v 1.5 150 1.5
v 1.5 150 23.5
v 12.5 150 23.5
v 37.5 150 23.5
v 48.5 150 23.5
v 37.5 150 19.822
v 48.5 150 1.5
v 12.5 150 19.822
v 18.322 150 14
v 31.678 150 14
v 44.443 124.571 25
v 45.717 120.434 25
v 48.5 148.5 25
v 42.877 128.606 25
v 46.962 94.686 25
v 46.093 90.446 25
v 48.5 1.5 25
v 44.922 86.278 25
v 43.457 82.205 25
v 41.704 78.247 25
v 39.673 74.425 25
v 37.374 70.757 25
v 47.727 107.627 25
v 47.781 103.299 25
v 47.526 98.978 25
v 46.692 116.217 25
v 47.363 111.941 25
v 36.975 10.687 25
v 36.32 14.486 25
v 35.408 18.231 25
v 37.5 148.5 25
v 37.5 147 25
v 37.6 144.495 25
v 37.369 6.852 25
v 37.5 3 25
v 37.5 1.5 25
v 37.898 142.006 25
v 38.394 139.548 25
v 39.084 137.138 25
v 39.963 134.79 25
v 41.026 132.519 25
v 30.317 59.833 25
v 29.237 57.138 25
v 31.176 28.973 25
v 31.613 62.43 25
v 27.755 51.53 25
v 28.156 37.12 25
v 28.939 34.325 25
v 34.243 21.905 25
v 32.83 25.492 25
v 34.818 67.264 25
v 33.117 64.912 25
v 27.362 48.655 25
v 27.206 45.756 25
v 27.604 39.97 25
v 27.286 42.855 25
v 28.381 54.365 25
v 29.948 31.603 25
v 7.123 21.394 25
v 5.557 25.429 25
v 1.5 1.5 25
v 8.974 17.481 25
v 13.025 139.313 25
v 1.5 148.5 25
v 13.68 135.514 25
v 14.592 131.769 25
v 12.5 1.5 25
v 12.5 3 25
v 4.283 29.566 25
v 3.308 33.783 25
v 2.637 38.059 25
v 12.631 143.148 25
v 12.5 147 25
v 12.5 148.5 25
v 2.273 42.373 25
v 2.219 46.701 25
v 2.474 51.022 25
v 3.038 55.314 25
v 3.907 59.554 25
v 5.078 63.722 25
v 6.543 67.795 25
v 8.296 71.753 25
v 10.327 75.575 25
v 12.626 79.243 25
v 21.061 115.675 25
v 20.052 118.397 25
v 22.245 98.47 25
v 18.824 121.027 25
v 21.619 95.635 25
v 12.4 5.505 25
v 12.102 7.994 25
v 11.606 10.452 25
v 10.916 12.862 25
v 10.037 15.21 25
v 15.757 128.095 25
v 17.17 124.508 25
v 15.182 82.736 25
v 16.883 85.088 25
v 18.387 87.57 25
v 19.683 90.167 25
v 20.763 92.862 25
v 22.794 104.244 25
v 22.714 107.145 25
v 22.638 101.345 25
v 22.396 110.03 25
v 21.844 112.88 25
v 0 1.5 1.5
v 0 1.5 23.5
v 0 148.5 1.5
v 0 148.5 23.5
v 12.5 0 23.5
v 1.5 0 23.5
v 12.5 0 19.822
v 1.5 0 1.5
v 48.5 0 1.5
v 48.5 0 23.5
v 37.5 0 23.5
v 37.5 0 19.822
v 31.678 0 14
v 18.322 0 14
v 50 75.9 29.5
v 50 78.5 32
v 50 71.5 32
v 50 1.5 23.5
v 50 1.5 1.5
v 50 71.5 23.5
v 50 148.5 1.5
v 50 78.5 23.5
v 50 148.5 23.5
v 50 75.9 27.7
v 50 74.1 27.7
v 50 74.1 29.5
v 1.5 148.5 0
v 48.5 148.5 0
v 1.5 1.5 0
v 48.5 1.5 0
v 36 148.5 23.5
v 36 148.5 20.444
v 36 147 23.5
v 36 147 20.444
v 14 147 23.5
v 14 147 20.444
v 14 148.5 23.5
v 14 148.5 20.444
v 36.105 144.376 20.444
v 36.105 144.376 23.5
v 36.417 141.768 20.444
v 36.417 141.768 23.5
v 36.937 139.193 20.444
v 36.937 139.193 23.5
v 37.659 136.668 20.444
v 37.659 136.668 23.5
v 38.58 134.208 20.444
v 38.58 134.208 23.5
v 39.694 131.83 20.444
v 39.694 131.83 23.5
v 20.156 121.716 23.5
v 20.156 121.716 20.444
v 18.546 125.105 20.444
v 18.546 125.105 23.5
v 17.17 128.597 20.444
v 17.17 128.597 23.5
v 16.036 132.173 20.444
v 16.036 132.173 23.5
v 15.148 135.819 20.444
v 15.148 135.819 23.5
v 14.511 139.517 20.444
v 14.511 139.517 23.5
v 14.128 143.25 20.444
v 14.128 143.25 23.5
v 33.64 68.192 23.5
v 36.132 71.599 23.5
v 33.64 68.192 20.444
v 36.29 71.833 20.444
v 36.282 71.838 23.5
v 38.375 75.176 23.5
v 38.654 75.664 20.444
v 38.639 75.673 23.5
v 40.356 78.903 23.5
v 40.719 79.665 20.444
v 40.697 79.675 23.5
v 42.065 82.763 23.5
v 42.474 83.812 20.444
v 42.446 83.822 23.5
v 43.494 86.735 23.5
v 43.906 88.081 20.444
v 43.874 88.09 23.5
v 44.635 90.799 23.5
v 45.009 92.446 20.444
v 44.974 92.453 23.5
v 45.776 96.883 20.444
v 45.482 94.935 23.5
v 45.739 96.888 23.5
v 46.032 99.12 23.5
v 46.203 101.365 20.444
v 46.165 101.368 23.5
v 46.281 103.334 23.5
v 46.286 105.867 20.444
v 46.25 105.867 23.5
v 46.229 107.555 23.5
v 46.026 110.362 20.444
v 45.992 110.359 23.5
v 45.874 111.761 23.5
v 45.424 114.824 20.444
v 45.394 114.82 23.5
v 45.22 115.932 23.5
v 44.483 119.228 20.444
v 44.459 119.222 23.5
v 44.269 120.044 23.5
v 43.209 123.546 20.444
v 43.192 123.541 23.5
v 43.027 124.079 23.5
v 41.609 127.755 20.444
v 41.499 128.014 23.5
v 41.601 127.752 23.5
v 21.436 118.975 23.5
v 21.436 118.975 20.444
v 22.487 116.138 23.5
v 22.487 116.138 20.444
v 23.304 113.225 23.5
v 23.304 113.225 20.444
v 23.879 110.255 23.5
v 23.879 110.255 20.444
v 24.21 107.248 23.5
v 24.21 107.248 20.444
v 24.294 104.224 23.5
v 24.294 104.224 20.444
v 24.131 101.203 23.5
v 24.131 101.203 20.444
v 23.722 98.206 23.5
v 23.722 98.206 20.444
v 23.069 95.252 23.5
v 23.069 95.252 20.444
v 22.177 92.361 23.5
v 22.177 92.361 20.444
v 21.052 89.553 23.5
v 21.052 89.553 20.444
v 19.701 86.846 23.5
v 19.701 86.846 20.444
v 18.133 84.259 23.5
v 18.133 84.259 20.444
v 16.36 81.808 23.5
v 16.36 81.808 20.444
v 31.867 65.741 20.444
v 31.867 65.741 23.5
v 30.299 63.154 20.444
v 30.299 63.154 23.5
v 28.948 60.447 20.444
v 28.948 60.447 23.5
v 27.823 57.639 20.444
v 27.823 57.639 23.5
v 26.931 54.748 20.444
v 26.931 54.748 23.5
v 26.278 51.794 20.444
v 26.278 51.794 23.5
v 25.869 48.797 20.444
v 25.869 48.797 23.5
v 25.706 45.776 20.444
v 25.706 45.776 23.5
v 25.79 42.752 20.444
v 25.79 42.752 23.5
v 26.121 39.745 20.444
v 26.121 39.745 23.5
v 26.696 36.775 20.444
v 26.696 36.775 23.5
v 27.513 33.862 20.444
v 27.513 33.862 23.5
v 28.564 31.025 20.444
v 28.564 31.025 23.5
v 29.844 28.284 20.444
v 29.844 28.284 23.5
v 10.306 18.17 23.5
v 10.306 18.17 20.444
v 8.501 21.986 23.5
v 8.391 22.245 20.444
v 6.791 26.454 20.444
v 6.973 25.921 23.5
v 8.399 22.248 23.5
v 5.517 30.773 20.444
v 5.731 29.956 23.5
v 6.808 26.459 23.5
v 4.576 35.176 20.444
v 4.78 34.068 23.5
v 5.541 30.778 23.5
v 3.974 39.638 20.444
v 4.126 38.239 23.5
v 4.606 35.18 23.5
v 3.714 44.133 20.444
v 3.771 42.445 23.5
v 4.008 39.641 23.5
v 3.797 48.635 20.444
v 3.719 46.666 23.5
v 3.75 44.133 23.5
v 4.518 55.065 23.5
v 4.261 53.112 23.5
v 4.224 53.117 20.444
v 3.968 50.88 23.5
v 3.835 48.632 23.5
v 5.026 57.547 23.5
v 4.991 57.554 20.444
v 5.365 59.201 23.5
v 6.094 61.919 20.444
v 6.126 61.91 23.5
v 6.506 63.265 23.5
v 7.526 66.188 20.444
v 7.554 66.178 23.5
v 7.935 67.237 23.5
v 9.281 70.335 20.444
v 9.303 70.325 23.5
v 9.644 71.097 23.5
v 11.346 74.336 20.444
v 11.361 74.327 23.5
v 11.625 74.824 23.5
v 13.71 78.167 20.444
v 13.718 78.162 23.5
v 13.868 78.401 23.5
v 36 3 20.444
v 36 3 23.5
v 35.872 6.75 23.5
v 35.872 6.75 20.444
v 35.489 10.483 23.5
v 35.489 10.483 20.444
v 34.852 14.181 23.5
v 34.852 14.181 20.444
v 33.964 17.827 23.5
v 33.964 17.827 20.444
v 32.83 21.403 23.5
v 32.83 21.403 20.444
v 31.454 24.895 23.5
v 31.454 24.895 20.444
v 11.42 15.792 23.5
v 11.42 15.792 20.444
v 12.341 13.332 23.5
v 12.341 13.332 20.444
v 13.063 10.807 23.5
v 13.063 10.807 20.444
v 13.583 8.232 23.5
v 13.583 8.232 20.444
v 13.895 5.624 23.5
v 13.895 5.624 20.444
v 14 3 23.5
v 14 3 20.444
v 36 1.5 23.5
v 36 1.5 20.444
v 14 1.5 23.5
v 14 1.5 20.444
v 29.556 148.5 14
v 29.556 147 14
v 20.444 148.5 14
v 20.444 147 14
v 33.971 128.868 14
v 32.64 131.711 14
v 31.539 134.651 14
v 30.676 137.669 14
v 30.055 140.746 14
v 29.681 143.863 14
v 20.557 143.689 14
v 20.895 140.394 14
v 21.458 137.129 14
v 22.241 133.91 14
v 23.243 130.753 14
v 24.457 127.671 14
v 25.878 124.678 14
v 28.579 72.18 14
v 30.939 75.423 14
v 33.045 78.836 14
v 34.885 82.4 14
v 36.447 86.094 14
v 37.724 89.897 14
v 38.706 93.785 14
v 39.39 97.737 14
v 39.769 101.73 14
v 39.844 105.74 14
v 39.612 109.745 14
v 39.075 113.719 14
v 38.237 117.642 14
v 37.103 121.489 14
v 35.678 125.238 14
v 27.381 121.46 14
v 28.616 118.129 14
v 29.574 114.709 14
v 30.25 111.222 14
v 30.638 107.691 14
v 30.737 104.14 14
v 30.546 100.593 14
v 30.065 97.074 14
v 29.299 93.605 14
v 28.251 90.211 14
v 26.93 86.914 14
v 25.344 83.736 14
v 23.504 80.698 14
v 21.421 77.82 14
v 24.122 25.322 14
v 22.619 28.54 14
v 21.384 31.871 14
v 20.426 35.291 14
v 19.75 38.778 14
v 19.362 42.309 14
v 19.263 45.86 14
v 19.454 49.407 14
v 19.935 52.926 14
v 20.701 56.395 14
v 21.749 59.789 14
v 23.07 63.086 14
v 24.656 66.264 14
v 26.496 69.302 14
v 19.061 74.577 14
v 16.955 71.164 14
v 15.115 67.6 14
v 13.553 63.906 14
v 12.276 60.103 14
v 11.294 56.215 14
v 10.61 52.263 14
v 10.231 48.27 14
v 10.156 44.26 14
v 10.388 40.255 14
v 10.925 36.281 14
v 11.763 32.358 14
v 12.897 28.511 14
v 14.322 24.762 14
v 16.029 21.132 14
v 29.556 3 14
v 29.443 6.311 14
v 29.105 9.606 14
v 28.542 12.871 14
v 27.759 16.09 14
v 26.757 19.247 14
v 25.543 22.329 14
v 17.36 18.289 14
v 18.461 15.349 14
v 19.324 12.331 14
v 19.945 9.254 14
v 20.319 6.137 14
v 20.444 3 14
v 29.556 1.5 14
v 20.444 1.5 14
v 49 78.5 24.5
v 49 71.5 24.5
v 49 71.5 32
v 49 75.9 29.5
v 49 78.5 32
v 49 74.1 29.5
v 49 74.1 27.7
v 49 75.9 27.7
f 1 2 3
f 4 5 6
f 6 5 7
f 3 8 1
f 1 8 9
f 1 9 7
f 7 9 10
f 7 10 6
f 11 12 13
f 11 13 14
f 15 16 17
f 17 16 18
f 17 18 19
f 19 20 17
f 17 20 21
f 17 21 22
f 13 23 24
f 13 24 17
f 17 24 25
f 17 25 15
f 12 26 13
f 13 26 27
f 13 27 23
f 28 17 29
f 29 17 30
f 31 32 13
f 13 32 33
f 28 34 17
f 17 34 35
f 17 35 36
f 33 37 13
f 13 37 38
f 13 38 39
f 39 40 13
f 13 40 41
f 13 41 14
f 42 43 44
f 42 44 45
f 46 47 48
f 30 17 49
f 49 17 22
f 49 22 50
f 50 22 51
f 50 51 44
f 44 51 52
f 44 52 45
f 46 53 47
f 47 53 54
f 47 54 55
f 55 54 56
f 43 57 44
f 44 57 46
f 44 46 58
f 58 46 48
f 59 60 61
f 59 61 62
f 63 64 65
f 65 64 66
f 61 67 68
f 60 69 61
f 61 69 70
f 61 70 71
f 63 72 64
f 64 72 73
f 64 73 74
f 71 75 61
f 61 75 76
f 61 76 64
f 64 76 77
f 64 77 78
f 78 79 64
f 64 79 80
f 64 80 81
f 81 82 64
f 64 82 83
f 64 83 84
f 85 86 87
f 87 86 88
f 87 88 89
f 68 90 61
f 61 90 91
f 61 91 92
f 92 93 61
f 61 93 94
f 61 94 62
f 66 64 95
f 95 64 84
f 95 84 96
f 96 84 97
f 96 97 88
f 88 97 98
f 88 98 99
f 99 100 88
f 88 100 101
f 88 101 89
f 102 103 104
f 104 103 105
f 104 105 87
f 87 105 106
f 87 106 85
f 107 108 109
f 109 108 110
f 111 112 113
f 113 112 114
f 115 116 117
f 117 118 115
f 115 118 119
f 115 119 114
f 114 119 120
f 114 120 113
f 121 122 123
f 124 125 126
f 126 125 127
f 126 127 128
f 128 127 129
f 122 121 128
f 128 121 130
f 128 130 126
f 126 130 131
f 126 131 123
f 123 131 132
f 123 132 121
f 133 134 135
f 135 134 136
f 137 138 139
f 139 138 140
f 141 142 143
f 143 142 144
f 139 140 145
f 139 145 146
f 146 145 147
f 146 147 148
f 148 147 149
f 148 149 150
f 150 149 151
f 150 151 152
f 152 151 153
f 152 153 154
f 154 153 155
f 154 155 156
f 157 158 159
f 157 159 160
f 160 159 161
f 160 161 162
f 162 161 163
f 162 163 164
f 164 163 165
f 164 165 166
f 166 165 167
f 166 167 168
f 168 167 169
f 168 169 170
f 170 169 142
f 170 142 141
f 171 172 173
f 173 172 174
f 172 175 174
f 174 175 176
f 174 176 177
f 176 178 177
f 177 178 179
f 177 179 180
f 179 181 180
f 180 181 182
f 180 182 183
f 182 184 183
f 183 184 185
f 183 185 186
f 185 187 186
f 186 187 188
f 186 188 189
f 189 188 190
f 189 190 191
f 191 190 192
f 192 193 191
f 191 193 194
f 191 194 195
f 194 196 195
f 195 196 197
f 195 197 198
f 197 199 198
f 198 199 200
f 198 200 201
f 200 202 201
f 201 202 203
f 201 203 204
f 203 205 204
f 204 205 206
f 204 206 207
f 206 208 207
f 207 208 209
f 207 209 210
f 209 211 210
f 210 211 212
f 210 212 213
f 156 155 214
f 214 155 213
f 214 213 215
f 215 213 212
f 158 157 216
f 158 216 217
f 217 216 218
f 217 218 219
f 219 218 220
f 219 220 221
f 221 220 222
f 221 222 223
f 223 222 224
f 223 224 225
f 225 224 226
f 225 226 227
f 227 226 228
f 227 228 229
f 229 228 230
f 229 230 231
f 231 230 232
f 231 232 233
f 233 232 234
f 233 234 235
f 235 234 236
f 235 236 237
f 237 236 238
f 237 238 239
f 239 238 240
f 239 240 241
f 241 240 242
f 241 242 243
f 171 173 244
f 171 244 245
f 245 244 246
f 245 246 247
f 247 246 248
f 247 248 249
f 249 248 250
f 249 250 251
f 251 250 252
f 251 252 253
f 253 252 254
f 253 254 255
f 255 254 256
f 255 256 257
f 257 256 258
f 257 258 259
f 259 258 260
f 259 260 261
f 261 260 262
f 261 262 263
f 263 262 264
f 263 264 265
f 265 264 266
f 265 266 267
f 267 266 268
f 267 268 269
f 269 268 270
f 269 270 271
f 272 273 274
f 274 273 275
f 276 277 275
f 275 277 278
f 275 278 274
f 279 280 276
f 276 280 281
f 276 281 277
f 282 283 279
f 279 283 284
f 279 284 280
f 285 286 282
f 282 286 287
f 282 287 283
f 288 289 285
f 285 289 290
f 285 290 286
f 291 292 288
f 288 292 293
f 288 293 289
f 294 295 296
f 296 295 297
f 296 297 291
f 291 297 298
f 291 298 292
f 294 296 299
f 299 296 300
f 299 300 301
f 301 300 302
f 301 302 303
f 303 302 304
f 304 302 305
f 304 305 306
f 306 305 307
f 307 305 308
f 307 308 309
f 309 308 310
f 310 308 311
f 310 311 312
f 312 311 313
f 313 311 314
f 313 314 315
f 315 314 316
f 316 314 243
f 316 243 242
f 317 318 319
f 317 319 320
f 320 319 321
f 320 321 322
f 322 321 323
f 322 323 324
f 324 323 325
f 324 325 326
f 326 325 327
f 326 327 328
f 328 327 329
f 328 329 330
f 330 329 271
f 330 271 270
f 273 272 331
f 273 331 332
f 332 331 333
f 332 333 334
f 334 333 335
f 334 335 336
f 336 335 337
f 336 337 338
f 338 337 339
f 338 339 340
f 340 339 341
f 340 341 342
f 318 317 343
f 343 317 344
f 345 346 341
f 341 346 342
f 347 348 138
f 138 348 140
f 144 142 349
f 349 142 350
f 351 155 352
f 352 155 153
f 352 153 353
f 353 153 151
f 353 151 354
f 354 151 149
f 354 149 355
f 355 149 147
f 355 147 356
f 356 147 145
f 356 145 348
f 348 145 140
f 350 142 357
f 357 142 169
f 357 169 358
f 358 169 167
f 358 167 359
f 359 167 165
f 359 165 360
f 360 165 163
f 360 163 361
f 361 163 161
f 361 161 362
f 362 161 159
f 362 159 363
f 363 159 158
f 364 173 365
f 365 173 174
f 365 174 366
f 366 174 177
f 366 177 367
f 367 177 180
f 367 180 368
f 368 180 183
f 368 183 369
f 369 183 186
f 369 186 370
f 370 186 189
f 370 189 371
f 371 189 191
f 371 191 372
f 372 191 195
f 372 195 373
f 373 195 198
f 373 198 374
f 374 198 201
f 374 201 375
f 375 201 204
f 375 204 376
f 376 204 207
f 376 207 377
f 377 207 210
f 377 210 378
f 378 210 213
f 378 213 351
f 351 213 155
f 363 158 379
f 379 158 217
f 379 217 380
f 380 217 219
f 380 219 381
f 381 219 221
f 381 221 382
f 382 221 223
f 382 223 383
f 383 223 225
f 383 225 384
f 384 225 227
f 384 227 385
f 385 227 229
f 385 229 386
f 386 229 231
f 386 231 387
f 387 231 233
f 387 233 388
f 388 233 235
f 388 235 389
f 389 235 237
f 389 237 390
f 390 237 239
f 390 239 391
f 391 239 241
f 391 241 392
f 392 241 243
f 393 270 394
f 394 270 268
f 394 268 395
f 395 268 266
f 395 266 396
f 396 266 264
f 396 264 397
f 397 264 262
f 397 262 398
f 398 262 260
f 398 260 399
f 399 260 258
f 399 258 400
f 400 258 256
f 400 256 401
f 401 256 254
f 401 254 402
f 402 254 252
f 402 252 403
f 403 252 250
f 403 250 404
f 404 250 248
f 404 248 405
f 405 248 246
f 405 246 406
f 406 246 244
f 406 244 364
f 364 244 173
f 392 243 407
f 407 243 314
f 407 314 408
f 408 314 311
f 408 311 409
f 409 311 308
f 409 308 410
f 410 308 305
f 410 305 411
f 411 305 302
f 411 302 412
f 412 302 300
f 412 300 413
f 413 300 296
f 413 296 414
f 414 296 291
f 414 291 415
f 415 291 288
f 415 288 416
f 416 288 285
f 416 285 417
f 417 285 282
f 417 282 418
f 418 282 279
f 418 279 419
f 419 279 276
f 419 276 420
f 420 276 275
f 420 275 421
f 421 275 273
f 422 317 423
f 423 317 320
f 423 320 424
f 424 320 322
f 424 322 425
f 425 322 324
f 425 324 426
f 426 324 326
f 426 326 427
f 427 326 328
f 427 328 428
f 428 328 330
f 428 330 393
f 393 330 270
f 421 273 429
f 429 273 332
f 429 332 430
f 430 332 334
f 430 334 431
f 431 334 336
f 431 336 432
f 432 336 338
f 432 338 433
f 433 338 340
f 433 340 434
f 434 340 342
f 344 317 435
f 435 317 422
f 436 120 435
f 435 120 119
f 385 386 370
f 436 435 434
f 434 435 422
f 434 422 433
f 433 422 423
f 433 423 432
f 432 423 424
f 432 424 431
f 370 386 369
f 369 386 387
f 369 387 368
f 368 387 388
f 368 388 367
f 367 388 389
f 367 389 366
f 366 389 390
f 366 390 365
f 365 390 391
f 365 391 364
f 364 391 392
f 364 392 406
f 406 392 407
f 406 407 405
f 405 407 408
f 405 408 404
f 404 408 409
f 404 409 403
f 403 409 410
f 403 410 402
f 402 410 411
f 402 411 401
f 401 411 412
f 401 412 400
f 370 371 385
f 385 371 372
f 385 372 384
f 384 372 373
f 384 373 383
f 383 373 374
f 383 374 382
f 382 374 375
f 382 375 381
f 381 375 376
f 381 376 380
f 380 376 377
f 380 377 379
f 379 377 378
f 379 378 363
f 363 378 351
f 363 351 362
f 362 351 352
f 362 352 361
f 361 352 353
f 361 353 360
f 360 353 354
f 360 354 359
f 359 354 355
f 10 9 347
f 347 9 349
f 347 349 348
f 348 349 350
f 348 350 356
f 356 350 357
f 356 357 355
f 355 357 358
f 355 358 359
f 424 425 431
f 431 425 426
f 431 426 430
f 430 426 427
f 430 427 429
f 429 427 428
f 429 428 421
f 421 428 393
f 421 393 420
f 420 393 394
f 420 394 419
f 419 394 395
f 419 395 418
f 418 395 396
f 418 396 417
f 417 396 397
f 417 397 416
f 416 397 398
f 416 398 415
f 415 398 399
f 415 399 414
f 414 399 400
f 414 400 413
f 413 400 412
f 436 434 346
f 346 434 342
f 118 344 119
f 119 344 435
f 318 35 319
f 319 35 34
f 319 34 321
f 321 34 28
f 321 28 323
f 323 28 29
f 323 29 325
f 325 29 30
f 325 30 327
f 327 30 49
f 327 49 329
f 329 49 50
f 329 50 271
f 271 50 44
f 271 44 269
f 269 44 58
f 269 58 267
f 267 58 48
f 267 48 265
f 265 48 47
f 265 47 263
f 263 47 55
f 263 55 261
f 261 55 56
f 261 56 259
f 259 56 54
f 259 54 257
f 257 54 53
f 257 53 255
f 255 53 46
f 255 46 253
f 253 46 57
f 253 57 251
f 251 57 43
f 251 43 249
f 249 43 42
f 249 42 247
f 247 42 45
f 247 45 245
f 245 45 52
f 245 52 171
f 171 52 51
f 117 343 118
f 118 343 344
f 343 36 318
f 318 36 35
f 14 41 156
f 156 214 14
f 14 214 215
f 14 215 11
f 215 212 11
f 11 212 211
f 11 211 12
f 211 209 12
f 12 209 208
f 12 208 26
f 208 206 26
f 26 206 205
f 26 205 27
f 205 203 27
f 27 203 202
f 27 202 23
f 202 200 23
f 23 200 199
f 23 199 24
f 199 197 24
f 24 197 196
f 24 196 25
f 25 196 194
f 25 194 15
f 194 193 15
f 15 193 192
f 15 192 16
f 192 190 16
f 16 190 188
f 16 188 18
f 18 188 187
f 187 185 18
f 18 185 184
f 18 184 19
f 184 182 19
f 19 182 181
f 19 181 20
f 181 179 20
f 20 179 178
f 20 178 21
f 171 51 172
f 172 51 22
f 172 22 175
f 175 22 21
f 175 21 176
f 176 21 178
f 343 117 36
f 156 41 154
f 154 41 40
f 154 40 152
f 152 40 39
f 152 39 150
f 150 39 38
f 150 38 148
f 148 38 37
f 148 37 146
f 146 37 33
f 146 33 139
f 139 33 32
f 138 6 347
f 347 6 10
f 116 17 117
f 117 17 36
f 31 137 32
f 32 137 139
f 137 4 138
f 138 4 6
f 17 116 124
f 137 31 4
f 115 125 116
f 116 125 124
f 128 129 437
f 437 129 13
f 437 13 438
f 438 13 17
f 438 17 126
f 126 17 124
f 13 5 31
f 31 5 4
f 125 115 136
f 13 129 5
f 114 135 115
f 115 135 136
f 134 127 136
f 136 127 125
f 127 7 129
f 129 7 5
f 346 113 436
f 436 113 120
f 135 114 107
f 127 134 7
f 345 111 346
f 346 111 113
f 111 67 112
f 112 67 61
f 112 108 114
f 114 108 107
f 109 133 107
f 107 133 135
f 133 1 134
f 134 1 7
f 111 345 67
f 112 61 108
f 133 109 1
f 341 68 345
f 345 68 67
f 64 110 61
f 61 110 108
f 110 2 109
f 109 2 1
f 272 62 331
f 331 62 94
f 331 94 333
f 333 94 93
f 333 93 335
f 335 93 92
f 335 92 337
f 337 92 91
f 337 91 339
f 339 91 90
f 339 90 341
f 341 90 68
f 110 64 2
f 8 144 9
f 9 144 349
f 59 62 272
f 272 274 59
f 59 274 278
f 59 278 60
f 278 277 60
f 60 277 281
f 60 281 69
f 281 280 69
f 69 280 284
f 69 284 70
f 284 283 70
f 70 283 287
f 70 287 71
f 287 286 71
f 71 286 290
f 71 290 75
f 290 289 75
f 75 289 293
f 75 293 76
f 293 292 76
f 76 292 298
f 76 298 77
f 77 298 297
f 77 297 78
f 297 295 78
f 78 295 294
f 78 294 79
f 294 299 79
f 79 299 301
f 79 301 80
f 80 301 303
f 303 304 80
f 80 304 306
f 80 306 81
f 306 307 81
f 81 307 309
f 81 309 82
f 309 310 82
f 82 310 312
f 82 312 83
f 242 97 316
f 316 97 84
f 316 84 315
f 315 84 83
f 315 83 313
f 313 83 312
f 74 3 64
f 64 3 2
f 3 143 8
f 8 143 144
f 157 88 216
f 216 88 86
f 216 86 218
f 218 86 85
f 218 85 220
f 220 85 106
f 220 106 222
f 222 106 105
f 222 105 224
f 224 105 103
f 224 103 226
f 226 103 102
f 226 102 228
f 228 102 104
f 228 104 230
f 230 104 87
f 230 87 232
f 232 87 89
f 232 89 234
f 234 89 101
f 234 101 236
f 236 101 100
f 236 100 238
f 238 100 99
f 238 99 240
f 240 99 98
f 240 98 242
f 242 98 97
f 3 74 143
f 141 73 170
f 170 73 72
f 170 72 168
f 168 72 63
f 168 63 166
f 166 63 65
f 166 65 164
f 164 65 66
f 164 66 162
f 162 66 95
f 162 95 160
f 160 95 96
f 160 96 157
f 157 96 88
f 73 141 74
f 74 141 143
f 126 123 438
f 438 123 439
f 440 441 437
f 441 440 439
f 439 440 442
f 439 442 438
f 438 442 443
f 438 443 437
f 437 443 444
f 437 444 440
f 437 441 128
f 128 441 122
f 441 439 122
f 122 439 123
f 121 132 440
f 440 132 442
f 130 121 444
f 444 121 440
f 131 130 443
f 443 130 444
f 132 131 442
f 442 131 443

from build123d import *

# Parameters (mm, degrees)
SKETCH1_W                = 50
SKETCH1_H                = 150
BOSS_EXTRUDE1_DEPTH      = 25
CHAMFER1_SIZE            = 1.5
BOSS_EXTRUDE2_DEPTH      = 7
BOSS_EXTRUDE2_DEPTH_BACK = 10
SKETCH4_W                = 1
SKETCH4_H                = 7
SKETCH5_W                = 1.8
SKETCH5_H                = 1.8
CUT_EXTRUDE1_DEPTH       = 7


with BuildPart() as part:
    # Sketch1 → Boss-Extrude1 (new body)
    with BuildSketch(Plane.XY):
        with Locations((25, 75)):
            Rectangle(SKETCH1_W, SKETCH1_H)
    extrude(amount=BOSS_EXTRUDE1_DEPTH)

    # Cut-Sweep1: sweep along a path in Sketch3
    with BuildLine(Plane.XY.offset(25)) as cut_sweep1_path:
        Line((25, 0), (25, 3))
        ThreePointArc((25, 3), (23.751063127, 13.408967361), (20.075154476, 23.227019124))
        ThreePointArc((20.075154476, 23.227019124), (14.918298123, 49.838284764), (25, 75))
        ThreePointArc((25, 75), (35.081701877, 100.161715236), (29.924845524, 126.772980876))
        ThreePointArc((29.924845524, 126.772980876), (26.248936873, 136.591032639), (25, 147))
        Line((25, 147), (25, 150))
    # Sketch2 → Cut-Sweep1 (sweep, cut)
    with BuildSketch(Plane.XZ):
        Polygon((29.556349186, 36), (20.443650814, 36), (14, 29.556349186), (14, 20.443650814), (20.443650814, 14), (29.556349186, 14), (36, 20.443650814), (36, 29.556349186), align=None)
    sweep(path=cut_sweep1_path.line, mode=Mode.SUBTRACT)

    # Chamfer1
    chamfer1_edges = [part.edges().sort_by_distance(p)[0] for p in [
        (50, 75, 25),
        (43, 150, 25),
        (43, 0, 25),
        (7, 150, 25),
        (14, 1.5, 25),
        (13.063297345, 10.806725521, 25),
        (3.967729924, 50.879945025, 25),
        (24.131133677, 101.203375498, 25),
        (15.561171091, 133.988790799, 25),
        (14, 148.5, 25),
        (36, 1.5, 25),
        (34.438828909, 16.011209201, 25),
        (25.868866323, 48.796624502, 25),
        (46.032270076, 99.120054975, 25),
        (36.936702655, 139.193274479, 25),
        (36, 148.5, 25),
        (36, 150, 22.721825407),
        (14, 150, 22.721825407),
        (36, 0, 22.721825407),
        (14, 0, 22.721825407),
        (17.221825407, 0, 17.221825407),
        (32.778174593, 0, 17.221825407),
        (32.778174593, 150, 17.221825407),
        (17.221825407, 150, 17.221825407),
        (0, 75, 25),
        (25, 150, 0),
        (50, 75, 0),
        (25, 0, 0),
        (0, 75, 0),
        (7, 0, 25),
        (0, 150, 12.5),
        (50, 150, 12.5),
        (50, 0, 12.5),
        (0, 0, 12.5),
    ]]
    chamfer(chamfer1_edges, length=CHAMFER1_SIZE)

    # Sketch4 → Boss-Extrude2 (add, two sides: drawn at the far end of the back side and taken through both)
    with BuildSketch(Plane.XY.offset(25).offset(-BOSS_EXTRUDE2_DEPTH_BACK)):
        with Locations((49.5, 75)):
            Rectangle(SKETCH4_W, SKETCH4_H)
    extrude(amount=BOSS_EXTRUDE2_DEPTH + BOSS_EXTRUDE2_DEPTH_BACK)

    # Sketch5 → Cut-Extrude1 (cut)
    with BuildSketch(Plane(origin=(50, 0, 0), x_dir=(0, 0, -1), z_dir=(1, 0, 0))):
        with Locations((-28.6, 75)):
            Rectangle(SKETCH5_W, SKETCH5_H)
    extrude(amount=-CUT_EXTRUDE1_DEPTH, mode=Mode.SUBTRACT)


solid = part.part
